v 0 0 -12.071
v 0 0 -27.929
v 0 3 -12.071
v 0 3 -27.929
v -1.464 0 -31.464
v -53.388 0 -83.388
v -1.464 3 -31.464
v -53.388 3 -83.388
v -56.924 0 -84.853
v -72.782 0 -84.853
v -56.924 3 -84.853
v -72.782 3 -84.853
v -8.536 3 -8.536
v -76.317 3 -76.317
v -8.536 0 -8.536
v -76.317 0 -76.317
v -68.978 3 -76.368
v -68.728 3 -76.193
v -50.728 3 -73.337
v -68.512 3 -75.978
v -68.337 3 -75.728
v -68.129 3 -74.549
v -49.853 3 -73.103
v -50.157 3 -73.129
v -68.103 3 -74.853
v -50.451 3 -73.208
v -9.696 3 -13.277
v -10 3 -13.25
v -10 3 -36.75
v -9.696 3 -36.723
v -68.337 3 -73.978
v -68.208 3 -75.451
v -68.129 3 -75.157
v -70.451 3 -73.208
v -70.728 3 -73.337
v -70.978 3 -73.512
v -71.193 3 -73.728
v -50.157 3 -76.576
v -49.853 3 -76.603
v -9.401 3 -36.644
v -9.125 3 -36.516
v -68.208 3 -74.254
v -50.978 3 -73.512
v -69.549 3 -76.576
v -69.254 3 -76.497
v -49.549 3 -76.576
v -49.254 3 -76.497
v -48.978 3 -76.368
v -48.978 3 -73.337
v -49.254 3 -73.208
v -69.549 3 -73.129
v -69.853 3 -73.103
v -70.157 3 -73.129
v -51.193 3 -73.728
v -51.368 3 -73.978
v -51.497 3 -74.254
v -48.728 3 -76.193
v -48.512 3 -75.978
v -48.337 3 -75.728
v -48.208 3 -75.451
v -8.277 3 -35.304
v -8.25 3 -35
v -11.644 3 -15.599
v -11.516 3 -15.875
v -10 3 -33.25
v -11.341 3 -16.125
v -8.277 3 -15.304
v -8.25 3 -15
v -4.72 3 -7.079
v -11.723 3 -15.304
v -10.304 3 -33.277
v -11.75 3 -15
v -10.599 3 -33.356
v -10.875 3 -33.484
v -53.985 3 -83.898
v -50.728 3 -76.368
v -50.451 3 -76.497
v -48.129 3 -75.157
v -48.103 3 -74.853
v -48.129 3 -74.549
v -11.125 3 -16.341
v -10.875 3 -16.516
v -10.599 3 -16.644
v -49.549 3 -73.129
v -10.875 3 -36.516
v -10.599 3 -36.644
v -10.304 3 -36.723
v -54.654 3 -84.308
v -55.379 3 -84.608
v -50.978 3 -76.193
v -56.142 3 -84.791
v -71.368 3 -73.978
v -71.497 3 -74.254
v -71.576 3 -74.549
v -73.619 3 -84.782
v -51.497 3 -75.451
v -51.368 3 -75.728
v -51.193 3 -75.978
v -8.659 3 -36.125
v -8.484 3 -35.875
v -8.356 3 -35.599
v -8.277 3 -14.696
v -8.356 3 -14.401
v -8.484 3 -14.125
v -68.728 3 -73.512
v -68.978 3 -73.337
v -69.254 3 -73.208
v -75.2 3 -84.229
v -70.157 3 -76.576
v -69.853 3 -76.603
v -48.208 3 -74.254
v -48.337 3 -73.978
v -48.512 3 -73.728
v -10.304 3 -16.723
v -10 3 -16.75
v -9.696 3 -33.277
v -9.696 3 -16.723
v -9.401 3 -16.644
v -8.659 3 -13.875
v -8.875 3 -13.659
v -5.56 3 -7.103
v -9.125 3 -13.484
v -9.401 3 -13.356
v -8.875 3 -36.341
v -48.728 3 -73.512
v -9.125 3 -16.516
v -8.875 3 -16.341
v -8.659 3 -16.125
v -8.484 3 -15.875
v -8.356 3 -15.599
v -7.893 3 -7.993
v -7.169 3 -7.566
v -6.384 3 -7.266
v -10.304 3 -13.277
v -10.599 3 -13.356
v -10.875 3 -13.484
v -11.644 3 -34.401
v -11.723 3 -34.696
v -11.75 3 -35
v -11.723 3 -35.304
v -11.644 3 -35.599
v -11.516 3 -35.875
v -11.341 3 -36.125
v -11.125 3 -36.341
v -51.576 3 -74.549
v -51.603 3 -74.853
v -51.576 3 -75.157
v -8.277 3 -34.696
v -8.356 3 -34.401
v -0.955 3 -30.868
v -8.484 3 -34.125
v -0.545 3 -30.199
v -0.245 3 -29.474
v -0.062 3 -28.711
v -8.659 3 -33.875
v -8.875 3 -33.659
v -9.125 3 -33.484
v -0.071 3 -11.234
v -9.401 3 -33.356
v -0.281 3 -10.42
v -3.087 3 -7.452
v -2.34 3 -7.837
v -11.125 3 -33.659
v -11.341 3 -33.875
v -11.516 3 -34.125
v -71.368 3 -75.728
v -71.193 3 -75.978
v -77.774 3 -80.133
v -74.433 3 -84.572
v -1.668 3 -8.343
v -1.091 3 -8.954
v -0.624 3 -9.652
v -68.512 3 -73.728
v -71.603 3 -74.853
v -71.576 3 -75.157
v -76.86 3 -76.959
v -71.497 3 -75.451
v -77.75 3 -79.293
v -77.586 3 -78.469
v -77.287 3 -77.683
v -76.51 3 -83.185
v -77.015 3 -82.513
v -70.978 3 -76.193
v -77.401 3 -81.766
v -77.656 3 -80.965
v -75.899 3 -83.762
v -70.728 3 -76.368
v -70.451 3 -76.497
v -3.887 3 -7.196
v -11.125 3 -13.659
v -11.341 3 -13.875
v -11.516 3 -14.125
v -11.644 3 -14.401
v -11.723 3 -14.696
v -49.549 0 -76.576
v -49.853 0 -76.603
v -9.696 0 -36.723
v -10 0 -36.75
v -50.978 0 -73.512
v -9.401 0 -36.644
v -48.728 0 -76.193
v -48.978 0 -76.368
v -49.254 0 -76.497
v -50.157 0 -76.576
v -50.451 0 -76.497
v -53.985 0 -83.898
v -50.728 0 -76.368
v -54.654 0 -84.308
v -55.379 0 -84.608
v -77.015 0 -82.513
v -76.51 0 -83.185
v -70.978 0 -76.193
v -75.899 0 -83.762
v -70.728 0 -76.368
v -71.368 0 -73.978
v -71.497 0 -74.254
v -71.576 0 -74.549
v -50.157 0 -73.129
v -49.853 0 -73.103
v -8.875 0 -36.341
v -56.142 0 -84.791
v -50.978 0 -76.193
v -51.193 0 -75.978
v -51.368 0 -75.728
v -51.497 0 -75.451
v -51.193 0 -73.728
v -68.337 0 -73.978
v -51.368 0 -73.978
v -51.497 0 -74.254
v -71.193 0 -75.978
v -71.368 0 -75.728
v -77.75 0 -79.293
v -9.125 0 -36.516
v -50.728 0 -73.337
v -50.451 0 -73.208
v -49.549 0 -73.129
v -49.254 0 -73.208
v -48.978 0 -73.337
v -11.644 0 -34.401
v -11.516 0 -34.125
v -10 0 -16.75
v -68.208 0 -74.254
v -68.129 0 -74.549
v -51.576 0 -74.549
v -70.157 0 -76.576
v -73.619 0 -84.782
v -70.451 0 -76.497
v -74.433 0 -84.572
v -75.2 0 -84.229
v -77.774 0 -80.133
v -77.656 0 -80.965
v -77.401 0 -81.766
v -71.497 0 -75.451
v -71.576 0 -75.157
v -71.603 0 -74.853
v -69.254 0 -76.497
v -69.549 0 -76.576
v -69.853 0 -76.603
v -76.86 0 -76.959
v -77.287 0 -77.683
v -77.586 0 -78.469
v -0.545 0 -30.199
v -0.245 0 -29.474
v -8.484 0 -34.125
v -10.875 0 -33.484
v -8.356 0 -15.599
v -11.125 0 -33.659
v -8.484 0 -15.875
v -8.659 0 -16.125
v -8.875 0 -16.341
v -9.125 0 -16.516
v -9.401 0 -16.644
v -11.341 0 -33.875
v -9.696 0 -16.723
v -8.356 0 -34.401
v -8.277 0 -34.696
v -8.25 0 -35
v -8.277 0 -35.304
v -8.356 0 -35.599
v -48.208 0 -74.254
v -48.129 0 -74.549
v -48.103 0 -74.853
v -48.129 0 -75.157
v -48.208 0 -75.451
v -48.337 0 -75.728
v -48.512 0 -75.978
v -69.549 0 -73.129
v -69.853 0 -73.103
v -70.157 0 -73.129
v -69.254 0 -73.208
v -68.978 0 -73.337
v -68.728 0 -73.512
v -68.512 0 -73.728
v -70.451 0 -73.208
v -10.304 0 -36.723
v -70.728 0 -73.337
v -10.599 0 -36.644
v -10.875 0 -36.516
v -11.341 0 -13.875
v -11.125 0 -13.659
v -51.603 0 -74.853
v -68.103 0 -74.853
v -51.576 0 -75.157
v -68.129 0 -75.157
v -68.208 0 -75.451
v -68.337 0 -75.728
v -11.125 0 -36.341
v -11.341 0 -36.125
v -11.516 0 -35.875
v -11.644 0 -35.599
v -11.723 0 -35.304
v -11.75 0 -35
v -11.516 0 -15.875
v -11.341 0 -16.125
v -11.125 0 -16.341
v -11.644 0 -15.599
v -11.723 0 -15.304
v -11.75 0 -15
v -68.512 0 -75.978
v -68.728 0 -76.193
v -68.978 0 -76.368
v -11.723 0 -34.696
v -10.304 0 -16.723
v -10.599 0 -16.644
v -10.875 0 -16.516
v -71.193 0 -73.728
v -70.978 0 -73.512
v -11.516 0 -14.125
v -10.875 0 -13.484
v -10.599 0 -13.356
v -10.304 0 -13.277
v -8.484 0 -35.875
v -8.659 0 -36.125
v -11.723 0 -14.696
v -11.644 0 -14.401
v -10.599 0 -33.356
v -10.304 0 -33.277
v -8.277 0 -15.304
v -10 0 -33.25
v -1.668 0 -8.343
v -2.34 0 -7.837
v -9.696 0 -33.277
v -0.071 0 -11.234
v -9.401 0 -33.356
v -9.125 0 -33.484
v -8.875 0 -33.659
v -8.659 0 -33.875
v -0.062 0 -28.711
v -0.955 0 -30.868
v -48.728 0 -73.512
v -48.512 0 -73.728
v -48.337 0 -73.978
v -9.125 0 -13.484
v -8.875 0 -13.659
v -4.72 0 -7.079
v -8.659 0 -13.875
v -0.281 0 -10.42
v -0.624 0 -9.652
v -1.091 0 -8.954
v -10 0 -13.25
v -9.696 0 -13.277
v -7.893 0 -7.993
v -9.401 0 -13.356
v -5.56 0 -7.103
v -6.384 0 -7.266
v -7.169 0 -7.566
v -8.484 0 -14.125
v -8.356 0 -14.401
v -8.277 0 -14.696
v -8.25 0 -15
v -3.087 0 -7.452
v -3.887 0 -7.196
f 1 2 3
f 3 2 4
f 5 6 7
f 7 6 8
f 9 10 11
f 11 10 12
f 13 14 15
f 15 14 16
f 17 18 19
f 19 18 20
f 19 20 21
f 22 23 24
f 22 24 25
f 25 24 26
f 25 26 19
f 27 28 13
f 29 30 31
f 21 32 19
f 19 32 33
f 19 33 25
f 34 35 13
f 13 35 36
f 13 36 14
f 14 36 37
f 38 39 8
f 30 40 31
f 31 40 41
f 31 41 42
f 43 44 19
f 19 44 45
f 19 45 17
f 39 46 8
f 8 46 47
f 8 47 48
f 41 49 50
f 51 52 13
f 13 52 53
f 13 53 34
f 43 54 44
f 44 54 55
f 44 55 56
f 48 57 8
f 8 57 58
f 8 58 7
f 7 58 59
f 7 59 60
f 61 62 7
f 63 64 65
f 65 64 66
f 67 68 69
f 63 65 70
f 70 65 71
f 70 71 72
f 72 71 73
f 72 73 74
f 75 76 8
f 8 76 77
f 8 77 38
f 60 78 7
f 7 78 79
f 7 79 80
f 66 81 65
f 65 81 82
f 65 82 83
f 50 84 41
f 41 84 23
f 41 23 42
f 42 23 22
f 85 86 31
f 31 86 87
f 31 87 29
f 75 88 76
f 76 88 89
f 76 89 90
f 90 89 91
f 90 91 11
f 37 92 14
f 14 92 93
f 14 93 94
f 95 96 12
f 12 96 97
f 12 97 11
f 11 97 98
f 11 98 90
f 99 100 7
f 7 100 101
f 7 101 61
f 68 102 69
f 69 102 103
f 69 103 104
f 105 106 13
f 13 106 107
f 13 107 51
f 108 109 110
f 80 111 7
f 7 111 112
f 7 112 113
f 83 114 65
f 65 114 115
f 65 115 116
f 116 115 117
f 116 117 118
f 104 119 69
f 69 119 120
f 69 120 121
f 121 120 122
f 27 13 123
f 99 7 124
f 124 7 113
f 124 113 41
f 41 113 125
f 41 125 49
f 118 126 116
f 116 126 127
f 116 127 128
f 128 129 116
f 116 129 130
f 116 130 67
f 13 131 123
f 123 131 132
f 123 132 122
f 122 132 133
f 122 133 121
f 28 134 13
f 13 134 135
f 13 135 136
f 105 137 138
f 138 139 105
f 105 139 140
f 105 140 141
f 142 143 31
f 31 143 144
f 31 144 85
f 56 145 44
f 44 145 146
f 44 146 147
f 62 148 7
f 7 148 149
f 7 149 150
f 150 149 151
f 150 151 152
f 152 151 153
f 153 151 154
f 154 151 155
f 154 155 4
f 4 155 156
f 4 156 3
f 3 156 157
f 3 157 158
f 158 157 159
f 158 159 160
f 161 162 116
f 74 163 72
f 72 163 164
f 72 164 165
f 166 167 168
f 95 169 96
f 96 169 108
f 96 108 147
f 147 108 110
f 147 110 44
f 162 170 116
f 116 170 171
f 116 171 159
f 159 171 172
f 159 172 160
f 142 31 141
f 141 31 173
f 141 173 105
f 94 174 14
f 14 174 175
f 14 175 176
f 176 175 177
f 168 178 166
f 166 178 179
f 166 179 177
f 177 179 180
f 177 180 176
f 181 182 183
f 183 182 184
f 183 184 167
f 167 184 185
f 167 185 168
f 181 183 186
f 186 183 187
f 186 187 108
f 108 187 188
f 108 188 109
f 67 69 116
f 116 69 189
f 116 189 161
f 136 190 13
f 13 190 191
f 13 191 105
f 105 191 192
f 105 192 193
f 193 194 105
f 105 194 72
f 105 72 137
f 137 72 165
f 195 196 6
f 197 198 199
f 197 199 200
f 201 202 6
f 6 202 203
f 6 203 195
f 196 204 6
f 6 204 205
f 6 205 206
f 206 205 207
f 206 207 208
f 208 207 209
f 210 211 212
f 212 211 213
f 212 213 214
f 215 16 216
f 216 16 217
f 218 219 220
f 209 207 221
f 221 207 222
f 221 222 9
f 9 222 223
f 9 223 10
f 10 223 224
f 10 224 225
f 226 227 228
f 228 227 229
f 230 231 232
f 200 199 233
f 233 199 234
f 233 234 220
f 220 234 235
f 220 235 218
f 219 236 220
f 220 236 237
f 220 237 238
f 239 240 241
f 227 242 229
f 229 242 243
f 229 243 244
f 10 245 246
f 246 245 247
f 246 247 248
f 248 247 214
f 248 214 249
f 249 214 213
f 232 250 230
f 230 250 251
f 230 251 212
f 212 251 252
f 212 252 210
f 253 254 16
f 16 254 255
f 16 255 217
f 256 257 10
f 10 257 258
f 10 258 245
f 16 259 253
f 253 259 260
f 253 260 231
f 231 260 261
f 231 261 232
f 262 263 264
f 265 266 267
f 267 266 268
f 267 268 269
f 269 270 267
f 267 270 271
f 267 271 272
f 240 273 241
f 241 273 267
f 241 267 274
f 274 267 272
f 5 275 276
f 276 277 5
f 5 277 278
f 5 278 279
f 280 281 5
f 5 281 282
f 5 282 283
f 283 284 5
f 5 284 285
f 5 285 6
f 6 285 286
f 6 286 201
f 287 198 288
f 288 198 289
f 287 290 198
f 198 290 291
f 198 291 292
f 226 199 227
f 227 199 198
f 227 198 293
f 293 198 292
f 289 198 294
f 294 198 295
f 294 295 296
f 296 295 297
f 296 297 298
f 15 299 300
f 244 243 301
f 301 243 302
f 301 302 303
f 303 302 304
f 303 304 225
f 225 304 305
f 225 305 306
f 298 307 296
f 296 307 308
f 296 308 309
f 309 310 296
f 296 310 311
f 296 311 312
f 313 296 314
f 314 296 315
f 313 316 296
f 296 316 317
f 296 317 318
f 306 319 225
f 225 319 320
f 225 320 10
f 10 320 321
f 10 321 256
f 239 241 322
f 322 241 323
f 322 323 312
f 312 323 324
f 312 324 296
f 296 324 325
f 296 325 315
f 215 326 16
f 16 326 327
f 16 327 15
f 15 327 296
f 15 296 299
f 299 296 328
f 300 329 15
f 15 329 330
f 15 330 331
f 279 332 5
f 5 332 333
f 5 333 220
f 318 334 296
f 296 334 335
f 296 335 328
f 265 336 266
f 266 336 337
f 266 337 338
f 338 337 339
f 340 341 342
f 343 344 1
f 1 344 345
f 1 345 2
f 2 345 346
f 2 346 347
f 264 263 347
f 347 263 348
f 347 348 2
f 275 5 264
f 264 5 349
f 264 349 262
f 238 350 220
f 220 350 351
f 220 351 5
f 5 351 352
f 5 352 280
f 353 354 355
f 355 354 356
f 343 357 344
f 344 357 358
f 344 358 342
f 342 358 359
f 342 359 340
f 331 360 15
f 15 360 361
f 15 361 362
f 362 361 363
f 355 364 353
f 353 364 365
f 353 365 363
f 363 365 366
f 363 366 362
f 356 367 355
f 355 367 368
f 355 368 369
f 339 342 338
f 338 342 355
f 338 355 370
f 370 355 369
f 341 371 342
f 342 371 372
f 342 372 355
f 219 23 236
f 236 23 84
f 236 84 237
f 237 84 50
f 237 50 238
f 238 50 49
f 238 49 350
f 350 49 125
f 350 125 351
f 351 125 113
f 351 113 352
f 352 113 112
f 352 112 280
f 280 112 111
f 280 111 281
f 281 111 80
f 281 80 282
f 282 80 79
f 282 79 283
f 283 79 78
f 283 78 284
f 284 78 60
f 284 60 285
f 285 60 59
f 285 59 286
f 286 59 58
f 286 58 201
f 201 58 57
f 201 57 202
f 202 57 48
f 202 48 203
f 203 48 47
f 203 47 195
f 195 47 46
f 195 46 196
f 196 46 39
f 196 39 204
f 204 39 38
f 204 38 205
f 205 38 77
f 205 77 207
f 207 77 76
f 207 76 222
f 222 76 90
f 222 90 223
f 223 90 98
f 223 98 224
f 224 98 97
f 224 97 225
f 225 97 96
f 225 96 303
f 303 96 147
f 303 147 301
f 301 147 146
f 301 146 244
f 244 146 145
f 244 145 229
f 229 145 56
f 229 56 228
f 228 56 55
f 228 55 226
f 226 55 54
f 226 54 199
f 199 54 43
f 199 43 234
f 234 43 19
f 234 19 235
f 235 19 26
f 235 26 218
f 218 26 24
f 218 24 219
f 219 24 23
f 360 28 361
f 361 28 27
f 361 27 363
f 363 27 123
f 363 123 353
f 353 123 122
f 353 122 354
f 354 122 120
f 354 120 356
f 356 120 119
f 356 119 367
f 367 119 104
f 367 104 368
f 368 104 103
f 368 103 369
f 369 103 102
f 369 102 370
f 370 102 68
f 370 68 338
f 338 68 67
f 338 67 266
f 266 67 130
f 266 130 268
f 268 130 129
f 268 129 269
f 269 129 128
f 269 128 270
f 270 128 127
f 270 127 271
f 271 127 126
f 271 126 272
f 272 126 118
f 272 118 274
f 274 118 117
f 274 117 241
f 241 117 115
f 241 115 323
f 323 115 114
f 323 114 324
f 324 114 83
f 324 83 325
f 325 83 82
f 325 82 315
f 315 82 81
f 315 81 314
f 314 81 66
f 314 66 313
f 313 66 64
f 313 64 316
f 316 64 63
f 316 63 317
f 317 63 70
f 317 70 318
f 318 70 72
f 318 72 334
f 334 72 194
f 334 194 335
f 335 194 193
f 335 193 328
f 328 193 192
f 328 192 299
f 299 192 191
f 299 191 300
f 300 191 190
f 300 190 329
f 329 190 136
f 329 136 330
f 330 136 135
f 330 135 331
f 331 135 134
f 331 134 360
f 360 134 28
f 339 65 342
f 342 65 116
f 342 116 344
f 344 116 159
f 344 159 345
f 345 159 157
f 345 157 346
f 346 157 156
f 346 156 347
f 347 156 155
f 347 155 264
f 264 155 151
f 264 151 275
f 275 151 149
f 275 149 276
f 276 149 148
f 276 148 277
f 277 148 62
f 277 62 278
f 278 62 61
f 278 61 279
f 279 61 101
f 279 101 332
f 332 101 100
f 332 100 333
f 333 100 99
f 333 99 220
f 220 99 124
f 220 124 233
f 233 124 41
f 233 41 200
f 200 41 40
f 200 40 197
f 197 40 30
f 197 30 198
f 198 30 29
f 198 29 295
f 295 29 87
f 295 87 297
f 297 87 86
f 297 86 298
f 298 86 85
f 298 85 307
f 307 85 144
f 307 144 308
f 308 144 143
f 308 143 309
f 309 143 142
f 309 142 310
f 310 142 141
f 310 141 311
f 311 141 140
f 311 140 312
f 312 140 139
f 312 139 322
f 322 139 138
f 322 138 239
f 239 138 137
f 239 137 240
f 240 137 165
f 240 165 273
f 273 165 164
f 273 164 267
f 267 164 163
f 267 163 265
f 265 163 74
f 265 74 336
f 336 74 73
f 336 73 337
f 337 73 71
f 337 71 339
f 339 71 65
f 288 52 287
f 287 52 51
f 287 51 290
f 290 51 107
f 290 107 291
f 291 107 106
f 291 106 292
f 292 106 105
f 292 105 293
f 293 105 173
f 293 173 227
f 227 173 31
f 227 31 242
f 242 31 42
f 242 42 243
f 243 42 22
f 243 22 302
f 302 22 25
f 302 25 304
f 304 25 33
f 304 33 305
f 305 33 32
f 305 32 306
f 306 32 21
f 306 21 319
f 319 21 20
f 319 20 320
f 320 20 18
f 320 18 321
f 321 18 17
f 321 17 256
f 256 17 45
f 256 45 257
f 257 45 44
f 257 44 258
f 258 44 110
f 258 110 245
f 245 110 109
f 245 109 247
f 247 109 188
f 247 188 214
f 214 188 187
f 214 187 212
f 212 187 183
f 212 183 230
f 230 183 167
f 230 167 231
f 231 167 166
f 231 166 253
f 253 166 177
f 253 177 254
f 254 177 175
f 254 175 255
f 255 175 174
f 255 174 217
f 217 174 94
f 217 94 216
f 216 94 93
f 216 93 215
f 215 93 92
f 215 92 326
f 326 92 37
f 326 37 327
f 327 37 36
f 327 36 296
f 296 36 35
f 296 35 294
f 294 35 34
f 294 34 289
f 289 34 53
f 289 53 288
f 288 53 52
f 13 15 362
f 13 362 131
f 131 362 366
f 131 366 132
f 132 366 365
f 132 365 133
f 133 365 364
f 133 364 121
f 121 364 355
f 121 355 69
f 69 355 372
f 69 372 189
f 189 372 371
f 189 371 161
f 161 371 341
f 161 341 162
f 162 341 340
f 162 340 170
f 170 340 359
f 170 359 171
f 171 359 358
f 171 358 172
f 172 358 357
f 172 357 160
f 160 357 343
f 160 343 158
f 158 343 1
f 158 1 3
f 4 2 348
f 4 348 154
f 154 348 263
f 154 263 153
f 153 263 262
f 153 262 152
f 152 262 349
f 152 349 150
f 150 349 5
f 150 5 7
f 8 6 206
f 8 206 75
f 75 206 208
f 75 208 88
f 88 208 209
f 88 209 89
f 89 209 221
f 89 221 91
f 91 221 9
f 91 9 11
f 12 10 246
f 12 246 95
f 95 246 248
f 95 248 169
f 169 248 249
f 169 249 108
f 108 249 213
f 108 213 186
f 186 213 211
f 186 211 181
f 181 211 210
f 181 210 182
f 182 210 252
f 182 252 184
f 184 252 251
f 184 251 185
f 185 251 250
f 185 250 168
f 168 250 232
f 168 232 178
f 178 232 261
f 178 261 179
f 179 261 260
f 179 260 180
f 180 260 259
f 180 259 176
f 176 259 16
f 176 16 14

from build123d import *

# Parameters (mm, degrees)
BOSS_EXTRUDE1_DEPTH = 3
SKETCH2_R           = 1.75
CUT_EXTRUDE1_DEPTH  = 121.037494142
FILLET2_R           = 5


with BuildPart() as part:
    # Sketch1 → Boss-Extrude1 (new body)
    with BuildSketch(Plane(origin=(0, 0, 0), x_dir=(1, 0, 0), z_dir=(0, 1, 0))):
        Polygon((0, 0), (-84.852813742, 84.852813742), (-54.852813742, 84.852813742), (0, 30), align=None)
    extrude(amount=BOSS_EXTRUDE1_DEPTH)

    # Sketch2 → Cut-Extrude1 (cut, through all)
    with BuildSketch(Plane(origin=(0, 3, 0), x_dir=(1, 0, 0), z_dir=(0, 1, 0))):
        with Locations(Location((-69.852813742, 74.852813742, 0), (0, 0, 270))):
            Circle(SKETCH2_R)
        with Locations(Location((-49.852813742, 74.852813742, 0), (0, 0, 270))):
            Circle(SKETCH2_R)
        with Locations(Location((-10, 15, 0), (0, 0, 270))):
            Circle(SKETCH2_R)
        with Locations(Location((-10, 35, 0), (0, 0, 270))):
            Circle(SKETCH2_R)
    extrude(amount=-CUT_EXTRUDE1_DEPTH, mode=Mode.SUBTRACT)

    # Fillet2
    fillet2_edges = [part.edges().sort_by_distance(p)[0] for p in [
        (0, 1.5, 0),
        (-84.852813742, 1.5, -84.852813742),
        (-54.852813742, 1.5, -84.852813742),
        (0, 1.5, -30),
    ]]
    fillet(fillet2_edges, radius=FILLET2_R)


solid = part.part
